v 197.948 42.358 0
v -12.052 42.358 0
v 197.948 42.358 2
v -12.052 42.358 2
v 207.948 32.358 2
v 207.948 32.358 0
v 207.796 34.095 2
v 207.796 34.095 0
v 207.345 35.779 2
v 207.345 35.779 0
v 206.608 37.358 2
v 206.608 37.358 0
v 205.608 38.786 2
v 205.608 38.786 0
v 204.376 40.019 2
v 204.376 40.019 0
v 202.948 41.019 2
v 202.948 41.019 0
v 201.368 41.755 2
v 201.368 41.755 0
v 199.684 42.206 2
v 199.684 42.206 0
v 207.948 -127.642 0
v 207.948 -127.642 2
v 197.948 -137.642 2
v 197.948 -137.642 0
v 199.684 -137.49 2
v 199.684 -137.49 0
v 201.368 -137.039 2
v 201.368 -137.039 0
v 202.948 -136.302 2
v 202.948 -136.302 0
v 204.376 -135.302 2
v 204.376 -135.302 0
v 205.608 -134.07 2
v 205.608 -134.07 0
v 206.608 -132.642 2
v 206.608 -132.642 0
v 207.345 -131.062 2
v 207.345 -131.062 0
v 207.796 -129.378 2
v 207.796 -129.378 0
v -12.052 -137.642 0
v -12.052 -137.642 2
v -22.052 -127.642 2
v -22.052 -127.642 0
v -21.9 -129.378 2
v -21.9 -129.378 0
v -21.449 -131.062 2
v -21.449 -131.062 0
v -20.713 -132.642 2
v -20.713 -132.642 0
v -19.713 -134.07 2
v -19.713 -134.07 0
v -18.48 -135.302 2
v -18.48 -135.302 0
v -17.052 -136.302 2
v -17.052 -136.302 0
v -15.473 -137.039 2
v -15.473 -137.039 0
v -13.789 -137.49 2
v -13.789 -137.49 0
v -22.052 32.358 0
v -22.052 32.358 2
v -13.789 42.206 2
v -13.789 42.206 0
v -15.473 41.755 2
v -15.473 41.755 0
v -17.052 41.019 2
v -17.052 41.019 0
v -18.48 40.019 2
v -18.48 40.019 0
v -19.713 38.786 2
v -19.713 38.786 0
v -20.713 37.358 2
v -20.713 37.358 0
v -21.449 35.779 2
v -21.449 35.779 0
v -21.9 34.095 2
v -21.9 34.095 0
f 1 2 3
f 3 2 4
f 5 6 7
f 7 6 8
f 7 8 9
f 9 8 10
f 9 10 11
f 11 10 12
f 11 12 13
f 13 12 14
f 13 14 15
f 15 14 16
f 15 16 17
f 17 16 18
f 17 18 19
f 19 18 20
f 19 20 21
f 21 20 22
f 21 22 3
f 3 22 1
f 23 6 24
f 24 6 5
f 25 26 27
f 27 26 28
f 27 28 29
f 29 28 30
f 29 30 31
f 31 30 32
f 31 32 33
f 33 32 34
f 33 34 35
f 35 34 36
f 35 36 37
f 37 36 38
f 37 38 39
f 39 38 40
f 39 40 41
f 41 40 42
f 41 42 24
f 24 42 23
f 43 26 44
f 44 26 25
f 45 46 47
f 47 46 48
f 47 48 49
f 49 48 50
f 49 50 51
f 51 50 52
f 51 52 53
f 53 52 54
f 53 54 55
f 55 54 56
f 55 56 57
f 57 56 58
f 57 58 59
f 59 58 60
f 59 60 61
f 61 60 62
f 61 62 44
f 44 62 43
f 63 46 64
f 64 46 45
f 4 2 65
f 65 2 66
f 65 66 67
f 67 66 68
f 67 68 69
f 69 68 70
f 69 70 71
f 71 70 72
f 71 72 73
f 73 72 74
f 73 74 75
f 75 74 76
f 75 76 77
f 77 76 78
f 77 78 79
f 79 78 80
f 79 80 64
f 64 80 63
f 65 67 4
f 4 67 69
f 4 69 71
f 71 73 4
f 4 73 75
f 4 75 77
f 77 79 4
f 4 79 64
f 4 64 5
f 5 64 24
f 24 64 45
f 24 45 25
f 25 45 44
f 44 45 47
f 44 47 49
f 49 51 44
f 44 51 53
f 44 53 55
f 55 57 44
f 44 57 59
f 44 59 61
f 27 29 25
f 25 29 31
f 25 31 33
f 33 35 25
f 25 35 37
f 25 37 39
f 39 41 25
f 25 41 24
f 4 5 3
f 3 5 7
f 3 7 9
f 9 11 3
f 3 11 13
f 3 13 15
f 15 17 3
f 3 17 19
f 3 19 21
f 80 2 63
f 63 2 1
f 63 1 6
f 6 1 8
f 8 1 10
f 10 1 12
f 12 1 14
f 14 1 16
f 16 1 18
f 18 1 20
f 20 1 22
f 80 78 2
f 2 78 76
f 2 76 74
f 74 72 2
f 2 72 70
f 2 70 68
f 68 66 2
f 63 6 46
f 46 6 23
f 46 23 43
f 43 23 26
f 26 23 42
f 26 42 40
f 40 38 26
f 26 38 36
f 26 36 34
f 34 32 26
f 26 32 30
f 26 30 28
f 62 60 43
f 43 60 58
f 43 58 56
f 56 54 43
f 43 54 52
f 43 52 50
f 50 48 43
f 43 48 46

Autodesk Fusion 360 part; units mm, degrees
sketch "Skizze1" plane through (0, 0, 0) normal (0, 0, 1) x (1, 0, 0)
  line L0 (-12.0523, 42.3584) -> (197.9477, 42.3584)
  line L1 (207.9477, 32.3584) -> (207.9477, -127.6416)
  line L2 (197.9477, -137.6416) -> (-12.0523, -137.6416)
  line L3 (-22.0523, -127.6416) -> (-22.0523, 32.3584)
  arc A0 (-12.0523, 42.3584) -> (-22.0523, 32.3584) centre (-12.0523, 32.3584) ccw
  arc A1 (207.9477, 32.3584) -> (197.9477, 42.3584) centre (197.9477, 32.3584) ccw
  arc A2 (197.9477, -137.6416) -> (207.9477, -127.6416) centre (197.9477, -127.6416) ccw
  arc A3 (-22.0523, -127.6416) -> (-12.0523, -137.6416) centre (-12.0523, -127.6416) ccw
  point P0 (-22.0523, 42.3584)
  point P1 (207.9477, 42.3584)
  point P2 (-22.0523, -137.6416)
  dimension "d1" = 230
  dimension "d2" = 180
  dimension "d3" = 10
extrude "Extrusion1" add sketch "Skizze1" along normal blind 2
